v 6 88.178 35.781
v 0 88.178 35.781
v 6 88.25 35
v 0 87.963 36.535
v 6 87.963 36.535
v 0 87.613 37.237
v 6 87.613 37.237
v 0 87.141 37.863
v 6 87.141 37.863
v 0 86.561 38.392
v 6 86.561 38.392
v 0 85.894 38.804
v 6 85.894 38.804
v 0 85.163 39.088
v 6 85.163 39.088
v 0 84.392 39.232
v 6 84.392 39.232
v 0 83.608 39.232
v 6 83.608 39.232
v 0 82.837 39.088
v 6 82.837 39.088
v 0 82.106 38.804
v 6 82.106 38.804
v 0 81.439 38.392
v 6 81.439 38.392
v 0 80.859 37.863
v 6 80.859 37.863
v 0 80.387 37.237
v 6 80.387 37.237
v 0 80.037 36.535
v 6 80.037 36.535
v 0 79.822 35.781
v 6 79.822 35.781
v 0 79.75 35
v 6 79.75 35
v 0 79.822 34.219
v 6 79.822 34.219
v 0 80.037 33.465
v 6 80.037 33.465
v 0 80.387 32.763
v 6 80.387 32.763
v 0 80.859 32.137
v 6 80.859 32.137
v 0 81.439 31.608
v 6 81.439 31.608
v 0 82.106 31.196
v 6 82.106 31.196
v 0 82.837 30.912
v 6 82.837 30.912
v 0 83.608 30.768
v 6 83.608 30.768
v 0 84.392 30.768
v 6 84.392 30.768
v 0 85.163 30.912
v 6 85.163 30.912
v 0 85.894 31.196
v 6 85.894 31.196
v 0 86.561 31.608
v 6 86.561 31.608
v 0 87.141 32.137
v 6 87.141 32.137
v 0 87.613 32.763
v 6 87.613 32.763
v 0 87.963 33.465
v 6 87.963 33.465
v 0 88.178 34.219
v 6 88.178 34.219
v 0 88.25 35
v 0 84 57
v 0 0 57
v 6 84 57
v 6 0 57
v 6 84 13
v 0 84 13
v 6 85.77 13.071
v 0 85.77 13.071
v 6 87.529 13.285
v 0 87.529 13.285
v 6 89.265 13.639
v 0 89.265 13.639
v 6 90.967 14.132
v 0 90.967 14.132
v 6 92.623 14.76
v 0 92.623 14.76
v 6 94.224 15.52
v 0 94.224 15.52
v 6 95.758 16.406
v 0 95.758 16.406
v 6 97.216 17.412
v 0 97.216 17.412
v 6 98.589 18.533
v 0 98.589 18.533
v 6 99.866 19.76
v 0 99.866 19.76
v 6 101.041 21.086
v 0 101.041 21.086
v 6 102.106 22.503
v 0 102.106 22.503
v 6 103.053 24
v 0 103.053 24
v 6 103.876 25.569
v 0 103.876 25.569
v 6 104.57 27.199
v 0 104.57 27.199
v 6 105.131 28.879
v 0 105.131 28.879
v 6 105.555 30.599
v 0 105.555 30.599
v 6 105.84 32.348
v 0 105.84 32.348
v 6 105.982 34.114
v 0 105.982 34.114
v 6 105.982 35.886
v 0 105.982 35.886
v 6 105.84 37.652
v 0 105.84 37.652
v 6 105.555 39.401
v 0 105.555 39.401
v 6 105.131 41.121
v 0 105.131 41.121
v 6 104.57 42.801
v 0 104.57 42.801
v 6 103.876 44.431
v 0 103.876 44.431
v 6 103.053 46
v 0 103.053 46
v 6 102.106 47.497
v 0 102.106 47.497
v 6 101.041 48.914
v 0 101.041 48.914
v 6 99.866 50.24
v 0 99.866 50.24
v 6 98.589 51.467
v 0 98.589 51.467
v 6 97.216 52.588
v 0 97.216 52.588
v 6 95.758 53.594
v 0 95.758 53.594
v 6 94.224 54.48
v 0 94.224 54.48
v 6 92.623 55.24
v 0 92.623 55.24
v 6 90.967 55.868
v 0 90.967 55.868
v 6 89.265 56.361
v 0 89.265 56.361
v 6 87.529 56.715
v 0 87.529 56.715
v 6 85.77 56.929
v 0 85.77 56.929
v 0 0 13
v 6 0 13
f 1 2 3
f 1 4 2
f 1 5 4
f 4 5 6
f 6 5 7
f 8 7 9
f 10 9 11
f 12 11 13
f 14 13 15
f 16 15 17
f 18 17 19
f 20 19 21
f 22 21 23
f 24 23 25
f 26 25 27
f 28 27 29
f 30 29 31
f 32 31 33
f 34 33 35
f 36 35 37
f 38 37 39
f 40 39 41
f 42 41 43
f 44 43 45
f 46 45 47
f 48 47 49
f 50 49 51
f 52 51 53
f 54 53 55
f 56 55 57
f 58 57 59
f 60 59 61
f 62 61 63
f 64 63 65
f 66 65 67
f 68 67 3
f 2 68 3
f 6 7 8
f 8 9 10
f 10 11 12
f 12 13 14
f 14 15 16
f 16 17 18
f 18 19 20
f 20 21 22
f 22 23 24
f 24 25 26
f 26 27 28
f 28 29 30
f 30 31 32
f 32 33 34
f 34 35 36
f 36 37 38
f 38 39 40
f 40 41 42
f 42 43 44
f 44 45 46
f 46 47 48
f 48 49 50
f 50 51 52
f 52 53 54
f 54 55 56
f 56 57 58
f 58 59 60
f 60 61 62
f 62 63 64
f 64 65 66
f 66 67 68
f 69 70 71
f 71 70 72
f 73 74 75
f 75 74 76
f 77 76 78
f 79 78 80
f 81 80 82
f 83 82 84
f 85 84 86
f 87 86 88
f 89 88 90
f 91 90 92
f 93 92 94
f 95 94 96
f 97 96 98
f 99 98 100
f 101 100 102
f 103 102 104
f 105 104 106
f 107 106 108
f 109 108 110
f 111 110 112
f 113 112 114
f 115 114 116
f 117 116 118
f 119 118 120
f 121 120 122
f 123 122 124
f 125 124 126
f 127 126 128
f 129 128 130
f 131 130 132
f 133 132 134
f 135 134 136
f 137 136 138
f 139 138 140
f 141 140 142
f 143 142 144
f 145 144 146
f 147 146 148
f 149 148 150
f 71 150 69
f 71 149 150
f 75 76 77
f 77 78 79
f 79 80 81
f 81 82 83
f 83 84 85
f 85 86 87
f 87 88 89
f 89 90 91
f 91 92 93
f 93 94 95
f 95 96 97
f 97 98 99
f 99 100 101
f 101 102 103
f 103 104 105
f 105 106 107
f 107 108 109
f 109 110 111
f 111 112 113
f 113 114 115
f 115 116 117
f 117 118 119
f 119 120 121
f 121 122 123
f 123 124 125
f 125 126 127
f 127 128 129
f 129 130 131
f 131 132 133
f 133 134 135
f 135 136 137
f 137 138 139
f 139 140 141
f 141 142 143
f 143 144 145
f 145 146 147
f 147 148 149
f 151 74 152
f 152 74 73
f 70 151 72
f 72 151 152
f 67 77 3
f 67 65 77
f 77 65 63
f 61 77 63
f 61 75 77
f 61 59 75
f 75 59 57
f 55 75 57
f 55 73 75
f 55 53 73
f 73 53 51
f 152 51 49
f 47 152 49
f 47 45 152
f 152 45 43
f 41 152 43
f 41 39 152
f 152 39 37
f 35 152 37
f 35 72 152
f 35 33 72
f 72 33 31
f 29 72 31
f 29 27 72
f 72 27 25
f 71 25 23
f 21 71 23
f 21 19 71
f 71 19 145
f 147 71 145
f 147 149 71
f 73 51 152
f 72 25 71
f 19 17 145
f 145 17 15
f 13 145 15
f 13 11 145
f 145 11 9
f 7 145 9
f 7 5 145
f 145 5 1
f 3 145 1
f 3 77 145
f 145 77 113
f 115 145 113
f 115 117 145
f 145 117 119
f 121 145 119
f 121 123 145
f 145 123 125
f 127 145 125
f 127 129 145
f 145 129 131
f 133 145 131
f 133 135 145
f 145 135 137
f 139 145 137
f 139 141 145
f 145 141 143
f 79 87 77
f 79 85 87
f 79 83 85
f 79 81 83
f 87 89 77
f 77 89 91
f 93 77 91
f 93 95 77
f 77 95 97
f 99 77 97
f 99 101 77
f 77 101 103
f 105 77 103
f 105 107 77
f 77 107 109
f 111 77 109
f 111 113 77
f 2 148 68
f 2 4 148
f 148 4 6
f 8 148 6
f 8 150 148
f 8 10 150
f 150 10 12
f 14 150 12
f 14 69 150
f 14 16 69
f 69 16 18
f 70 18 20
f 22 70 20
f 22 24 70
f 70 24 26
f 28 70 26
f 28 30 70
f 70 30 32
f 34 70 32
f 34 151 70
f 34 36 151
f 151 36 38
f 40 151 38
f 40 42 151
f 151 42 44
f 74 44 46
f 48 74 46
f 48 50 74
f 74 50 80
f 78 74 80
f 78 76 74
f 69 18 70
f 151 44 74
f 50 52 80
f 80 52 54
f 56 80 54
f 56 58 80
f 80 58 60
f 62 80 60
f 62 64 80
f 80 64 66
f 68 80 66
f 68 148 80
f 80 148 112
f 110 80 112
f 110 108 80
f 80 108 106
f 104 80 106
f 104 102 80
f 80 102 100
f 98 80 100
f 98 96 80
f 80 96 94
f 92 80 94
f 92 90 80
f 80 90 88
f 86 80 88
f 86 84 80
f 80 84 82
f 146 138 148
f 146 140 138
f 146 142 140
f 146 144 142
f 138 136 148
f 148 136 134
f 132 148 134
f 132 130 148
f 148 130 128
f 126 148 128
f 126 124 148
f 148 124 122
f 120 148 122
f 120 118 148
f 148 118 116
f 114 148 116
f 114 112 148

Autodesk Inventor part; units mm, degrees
ref_plane "YZ Plane" through (0, 0, 0) normal (1, 0, 0) x (0, 1, 0)
ref_plane "XZ Plane" through (0, 0, 0) normal (0, 1, 0) x (-1, 0, 0)
ref_plane "XY Plane" through (0, 0, 0) normal (0, 0, 1) x (1, 0, 0)
sketch "Sketch3" plane through (0, 0, 0) normal (1, 0, 0) x (0, 1, 0)
  line L0 (0, 57) -> (0, 13)
  circle A0 centre (84, 35) radius 4.25
  line L1 (84, 35) -> (56.36, 35)
  line L2 (96, 53.4391) -> (92.6159, 55.2427)
  arc A1 (94.3473, 15.5852) -> (92.6159, 55.2427) centre (84, 35) ccw
  line L3 (84, 35) -> (71.3, 35)
  arc A2 (84, 13) -> (84, 57) centre (84, 35) ccw
  line L4 (84, 35) -> (84, 57)
  line L5 (0, 57) -> (84, 57)
  line L6 (84, 13) -> (0, 13)
  point P0 (0, 0)
  point P1 (84, 10.0705)
  point P2 (74.9172, 64.6754)
  dimension "d31" = 8.5
  dimension "d33" = 27.64
  dimension "d35" = 12.7
  dimension "d41" = 84
extrude "Extrusion3" add sketch "Sketch3" along normal blind 6
properties part number "Suporte Motor"
